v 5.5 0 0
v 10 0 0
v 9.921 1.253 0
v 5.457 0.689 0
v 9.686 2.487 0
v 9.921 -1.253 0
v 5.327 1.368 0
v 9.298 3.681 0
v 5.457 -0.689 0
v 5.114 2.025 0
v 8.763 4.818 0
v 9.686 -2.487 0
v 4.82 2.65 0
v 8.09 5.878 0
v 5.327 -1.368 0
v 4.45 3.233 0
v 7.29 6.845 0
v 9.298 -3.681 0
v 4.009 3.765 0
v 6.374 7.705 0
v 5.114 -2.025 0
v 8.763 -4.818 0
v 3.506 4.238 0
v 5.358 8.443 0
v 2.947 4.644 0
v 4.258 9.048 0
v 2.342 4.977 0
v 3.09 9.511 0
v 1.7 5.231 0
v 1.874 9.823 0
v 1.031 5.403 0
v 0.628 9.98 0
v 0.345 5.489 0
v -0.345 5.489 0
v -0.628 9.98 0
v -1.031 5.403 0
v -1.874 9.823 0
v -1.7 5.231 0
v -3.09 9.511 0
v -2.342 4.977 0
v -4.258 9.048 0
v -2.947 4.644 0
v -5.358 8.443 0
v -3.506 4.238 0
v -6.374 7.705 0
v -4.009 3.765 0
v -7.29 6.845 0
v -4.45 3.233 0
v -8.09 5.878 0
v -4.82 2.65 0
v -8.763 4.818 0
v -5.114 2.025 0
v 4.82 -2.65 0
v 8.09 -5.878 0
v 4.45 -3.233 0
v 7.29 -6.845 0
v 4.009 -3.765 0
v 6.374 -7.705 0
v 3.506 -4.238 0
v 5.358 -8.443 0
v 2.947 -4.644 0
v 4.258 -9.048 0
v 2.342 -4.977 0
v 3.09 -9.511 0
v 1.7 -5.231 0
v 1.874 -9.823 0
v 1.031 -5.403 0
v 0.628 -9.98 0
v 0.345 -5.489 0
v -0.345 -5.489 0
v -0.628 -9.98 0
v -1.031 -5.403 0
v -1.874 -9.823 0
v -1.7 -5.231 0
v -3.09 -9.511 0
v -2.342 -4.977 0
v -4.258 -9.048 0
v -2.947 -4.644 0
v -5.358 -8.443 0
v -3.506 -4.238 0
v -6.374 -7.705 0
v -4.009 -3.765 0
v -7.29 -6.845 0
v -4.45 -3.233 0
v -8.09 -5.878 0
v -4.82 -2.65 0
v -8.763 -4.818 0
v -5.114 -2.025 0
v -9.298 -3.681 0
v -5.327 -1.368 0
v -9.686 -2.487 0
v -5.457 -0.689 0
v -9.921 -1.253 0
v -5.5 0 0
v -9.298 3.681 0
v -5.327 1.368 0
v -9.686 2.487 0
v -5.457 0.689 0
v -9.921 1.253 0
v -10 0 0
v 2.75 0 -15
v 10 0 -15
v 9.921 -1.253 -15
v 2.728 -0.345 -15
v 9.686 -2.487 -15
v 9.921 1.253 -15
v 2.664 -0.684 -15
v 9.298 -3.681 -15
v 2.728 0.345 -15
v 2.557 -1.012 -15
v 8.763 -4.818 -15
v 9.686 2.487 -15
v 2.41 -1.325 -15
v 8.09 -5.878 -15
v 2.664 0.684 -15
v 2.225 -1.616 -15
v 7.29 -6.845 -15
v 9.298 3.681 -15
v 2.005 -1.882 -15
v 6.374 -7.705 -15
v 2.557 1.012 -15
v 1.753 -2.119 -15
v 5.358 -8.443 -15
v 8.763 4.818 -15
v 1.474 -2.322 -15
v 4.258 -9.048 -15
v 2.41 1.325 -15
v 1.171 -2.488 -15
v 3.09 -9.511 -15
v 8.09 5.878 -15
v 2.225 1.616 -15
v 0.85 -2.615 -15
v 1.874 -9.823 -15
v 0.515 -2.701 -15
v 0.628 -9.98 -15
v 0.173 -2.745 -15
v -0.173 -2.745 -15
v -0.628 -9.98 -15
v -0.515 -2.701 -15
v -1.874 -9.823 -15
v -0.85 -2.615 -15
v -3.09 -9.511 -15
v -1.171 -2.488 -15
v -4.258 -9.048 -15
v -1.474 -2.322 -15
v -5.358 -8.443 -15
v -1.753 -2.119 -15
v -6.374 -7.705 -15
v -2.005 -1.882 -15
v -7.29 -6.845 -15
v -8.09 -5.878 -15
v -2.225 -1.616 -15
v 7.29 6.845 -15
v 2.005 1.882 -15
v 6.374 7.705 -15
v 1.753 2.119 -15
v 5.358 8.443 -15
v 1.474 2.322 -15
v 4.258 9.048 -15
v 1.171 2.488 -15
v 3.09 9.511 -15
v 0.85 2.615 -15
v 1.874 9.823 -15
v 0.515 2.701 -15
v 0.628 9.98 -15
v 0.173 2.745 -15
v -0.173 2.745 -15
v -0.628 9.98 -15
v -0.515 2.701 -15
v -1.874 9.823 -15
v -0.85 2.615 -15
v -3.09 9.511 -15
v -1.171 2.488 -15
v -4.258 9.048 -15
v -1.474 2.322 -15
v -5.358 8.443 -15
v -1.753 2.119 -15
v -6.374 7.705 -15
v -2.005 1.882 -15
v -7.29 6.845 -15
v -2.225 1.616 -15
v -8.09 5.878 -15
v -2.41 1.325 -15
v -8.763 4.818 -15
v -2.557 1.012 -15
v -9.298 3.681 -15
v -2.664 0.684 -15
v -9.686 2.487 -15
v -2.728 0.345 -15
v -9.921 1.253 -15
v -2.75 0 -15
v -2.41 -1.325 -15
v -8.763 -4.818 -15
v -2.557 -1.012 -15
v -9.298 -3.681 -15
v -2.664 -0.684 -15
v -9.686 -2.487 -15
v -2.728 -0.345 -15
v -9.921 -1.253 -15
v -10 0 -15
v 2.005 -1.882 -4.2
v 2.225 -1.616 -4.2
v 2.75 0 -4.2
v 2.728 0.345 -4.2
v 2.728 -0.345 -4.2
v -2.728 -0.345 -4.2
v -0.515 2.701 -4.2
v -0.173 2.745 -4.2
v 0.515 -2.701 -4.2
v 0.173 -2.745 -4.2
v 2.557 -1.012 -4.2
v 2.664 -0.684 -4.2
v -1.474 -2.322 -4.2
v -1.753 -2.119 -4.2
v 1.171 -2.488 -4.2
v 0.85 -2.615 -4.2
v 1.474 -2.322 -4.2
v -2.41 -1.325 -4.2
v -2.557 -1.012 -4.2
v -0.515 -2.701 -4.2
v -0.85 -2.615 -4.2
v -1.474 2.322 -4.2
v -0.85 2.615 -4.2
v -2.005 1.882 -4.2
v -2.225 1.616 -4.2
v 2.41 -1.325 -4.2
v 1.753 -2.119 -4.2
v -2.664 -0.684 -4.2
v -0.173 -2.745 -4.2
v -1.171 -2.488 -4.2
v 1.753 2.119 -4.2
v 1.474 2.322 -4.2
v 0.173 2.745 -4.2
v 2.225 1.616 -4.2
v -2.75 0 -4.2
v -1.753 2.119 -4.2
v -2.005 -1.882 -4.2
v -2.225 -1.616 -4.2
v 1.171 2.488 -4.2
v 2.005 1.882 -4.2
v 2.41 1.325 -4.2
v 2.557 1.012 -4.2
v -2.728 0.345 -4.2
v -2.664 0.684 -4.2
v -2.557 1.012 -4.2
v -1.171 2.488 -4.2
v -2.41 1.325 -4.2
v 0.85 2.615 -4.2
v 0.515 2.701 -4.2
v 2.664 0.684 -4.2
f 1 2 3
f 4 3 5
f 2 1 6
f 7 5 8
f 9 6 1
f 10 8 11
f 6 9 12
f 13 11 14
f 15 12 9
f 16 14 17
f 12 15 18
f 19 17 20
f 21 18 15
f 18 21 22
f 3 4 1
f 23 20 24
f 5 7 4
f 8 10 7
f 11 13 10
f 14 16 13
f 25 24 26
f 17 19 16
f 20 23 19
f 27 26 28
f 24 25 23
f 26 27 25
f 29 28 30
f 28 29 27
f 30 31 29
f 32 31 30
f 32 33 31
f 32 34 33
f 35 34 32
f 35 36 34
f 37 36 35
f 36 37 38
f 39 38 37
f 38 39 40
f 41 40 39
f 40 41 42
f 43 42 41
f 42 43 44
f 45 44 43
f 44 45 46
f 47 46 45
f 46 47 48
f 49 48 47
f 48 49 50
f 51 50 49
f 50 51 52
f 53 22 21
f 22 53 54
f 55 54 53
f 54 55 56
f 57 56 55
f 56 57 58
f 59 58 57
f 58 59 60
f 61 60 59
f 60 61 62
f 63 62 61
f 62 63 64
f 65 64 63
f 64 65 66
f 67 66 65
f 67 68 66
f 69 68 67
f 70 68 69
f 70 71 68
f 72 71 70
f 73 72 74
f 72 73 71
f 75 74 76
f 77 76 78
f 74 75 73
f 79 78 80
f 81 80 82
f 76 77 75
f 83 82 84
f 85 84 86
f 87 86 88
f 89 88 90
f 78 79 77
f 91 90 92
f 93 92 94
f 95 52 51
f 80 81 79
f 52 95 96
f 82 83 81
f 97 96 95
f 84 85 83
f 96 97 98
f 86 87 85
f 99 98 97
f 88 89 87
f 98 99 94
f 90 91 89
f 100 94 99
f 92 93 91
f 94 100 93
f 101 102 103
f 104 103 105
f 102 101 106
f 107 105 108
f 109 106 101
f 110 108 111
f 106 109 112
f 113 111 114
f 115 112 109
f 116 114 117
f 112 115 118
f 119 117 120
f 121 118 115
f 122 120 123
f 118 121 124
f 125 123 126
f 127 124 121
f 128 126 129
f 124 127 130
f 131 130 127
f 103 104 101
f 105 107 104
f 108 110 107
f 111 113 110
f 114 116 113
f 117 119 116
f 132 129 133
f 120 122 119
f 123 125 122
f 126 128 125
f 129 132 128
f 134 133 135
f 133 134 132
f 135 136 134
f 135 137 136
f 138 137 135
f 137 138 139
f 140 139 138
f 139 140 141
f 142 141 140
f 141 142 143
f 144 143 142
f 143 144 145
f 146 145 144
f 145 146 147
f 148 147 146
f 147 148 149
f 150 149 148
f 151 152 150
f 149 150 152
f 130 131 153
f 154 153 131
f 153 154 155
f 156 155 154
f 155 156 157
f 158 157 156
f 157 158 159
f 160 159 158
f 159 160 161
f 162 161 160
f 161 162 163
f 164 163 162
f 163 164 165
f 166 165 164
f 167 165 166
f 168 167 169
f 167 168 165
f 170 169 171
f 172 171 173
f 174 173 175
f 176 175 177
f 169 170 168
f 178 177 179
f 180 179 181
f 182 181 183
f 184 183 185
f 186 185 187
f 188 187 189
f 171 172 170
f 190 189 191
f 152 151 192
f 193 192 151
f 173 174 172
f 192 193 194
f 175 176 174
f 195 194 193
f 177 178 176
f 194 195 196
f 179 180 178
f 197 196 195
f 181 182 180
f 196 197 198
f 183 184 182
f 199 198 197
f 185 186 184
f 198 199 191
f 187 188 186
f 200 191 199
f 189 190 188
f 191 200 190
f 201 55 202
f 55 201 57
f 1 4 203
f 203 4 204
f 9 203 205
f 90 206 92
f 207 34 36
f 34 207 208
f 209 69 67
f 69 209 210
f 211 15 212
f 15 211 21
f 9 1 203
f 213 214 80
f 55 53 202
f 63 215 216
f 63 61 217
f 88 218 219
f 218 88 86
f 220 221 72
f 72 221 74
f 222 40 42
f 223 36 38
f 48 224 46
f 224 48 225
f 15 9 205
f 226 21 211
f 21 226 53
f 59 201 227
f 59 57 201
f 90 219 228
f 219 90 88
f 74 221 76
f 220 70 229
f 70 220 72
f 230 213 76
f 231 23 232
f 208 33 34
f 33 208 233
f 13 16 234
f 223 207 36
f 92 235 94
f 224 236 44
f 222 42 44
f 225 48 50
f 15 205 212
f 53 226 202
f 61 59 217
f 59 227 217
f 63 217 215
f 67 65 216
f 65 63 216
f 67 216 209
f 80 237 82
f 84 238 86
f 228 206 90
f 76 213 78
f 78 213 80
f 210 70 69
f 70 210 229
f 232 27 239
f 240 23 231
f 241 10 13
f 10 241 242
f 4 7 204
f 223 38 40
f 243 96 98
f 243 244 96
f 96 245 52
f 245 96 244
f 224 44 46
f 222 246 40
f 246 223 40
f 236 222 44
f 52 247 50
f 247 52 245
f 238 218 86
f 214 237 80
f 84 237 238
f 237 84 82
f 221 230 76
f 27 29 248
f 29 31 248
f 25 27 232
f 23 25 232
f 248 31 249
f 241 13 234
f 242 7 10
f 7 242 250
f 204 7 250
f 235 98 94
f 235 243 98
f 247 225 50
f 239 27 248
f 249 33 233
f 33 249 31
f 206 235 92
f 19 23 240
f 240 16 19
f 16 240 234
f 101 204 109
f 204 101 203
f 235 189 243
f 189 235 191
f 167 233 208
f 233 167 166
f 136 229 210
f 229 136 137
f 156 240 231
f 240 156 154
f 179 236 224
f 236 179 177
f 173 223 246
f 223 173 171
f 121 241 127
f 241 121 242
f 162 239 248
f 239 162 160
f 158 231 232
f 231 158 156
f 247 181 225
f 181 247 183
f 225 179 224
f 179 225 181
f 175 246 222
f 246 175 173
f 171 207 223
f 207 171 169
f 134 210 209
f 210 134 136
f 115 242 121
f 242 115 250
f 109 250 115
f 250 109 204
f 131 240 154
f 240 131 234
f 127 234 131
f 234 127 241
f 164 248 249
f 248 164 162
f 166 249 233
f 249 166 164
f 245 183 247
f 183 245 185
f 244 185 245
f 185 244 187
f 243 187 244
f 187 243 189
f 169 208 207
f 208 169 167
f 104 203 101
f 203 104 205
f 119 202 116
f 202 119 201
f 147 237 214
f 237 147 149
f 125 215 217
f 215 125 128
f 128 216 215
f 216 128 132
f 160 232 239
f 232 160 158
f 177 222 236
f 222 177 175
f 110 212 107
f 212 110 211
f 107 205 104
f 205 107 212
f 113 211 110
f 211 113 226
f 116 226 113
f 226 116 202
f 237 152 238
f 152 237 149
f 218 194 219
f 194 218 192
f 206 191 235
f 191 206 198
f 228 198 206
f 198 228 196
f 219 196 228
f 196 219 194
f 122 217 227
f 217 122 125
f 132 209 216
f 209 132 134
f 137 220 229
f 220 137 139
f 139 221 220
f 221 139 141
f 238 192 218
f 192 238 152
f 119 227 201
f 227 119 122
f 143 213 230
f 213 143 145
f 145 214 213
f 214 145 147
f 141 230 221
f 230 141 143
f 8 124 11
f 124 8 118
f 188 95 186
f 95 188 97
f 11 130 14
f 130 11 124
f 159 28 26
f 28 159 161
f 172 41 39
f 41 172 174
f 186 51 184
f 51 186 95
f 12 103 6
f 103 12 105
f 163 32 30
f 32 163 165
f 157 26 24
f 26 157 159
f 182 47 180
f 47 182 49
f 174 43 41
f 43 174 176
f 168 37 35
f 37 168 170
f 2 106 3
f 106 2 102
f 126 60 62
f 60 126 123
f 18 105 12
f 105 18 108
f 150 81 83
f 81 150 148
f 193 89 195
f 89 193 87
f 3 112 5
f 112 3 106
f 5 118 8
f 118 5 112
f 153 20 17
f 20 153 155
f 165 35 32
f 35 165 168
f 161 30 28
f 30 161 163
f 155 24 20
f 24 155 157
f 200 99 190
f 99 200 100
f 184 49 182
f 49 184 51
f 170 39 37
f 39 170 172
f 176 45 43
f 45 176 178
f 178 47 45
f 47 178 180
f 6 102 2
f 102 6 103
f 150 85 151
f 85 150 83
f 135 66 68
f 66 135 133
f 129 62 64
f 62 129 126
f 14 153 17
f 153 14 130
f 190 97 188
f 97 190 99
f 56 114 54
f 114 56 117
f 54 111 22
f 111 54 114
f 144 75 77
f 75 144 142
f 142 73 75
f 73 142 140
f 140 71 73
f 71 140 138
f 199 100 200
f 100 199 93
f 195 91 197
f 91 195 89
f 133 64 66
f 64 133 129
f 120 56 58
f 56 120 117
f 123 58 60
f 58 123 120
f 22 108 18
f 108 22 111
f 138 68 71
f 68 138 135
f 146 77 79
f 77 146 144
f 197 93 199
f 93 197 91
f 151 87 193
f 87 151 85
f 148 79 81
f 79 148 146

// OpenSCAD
$fn = 50;


difference() {
	union() {
		translate(v = [0, 0, -15.0000000000]) {
			cylinder(h = 15, r = 10.0000000000);
		}
		cylinder(h = 0, r = 16.0000000000);
	}
	union() {
		translate(v = [0, 0, 0]) {
			rotate(a = [0, 0, 0]) {
				difference() {
					union() {
						#translate(v = [0, 0, -15.0000000000]) {
							cylinder(h = 15, r = 2.2500000000);
						}
						#translate(v = [0, 0, -4.2000000000]) {
							cylinder(h = 4.2000000000, r1 = 2.7500000000, r2 = 5.5000000000);
						}
						#translate(v = [0, 0, -15.0000000000]) {
							cylinder(h = 15, r = 2.7500000000);
						}
						#translate(v = [0, 0, -15.0000000000]) {
							cylinder(h = 15, r = 2.2500000000);
						}
					}
					union();
				}
			}
		}
	}
}
